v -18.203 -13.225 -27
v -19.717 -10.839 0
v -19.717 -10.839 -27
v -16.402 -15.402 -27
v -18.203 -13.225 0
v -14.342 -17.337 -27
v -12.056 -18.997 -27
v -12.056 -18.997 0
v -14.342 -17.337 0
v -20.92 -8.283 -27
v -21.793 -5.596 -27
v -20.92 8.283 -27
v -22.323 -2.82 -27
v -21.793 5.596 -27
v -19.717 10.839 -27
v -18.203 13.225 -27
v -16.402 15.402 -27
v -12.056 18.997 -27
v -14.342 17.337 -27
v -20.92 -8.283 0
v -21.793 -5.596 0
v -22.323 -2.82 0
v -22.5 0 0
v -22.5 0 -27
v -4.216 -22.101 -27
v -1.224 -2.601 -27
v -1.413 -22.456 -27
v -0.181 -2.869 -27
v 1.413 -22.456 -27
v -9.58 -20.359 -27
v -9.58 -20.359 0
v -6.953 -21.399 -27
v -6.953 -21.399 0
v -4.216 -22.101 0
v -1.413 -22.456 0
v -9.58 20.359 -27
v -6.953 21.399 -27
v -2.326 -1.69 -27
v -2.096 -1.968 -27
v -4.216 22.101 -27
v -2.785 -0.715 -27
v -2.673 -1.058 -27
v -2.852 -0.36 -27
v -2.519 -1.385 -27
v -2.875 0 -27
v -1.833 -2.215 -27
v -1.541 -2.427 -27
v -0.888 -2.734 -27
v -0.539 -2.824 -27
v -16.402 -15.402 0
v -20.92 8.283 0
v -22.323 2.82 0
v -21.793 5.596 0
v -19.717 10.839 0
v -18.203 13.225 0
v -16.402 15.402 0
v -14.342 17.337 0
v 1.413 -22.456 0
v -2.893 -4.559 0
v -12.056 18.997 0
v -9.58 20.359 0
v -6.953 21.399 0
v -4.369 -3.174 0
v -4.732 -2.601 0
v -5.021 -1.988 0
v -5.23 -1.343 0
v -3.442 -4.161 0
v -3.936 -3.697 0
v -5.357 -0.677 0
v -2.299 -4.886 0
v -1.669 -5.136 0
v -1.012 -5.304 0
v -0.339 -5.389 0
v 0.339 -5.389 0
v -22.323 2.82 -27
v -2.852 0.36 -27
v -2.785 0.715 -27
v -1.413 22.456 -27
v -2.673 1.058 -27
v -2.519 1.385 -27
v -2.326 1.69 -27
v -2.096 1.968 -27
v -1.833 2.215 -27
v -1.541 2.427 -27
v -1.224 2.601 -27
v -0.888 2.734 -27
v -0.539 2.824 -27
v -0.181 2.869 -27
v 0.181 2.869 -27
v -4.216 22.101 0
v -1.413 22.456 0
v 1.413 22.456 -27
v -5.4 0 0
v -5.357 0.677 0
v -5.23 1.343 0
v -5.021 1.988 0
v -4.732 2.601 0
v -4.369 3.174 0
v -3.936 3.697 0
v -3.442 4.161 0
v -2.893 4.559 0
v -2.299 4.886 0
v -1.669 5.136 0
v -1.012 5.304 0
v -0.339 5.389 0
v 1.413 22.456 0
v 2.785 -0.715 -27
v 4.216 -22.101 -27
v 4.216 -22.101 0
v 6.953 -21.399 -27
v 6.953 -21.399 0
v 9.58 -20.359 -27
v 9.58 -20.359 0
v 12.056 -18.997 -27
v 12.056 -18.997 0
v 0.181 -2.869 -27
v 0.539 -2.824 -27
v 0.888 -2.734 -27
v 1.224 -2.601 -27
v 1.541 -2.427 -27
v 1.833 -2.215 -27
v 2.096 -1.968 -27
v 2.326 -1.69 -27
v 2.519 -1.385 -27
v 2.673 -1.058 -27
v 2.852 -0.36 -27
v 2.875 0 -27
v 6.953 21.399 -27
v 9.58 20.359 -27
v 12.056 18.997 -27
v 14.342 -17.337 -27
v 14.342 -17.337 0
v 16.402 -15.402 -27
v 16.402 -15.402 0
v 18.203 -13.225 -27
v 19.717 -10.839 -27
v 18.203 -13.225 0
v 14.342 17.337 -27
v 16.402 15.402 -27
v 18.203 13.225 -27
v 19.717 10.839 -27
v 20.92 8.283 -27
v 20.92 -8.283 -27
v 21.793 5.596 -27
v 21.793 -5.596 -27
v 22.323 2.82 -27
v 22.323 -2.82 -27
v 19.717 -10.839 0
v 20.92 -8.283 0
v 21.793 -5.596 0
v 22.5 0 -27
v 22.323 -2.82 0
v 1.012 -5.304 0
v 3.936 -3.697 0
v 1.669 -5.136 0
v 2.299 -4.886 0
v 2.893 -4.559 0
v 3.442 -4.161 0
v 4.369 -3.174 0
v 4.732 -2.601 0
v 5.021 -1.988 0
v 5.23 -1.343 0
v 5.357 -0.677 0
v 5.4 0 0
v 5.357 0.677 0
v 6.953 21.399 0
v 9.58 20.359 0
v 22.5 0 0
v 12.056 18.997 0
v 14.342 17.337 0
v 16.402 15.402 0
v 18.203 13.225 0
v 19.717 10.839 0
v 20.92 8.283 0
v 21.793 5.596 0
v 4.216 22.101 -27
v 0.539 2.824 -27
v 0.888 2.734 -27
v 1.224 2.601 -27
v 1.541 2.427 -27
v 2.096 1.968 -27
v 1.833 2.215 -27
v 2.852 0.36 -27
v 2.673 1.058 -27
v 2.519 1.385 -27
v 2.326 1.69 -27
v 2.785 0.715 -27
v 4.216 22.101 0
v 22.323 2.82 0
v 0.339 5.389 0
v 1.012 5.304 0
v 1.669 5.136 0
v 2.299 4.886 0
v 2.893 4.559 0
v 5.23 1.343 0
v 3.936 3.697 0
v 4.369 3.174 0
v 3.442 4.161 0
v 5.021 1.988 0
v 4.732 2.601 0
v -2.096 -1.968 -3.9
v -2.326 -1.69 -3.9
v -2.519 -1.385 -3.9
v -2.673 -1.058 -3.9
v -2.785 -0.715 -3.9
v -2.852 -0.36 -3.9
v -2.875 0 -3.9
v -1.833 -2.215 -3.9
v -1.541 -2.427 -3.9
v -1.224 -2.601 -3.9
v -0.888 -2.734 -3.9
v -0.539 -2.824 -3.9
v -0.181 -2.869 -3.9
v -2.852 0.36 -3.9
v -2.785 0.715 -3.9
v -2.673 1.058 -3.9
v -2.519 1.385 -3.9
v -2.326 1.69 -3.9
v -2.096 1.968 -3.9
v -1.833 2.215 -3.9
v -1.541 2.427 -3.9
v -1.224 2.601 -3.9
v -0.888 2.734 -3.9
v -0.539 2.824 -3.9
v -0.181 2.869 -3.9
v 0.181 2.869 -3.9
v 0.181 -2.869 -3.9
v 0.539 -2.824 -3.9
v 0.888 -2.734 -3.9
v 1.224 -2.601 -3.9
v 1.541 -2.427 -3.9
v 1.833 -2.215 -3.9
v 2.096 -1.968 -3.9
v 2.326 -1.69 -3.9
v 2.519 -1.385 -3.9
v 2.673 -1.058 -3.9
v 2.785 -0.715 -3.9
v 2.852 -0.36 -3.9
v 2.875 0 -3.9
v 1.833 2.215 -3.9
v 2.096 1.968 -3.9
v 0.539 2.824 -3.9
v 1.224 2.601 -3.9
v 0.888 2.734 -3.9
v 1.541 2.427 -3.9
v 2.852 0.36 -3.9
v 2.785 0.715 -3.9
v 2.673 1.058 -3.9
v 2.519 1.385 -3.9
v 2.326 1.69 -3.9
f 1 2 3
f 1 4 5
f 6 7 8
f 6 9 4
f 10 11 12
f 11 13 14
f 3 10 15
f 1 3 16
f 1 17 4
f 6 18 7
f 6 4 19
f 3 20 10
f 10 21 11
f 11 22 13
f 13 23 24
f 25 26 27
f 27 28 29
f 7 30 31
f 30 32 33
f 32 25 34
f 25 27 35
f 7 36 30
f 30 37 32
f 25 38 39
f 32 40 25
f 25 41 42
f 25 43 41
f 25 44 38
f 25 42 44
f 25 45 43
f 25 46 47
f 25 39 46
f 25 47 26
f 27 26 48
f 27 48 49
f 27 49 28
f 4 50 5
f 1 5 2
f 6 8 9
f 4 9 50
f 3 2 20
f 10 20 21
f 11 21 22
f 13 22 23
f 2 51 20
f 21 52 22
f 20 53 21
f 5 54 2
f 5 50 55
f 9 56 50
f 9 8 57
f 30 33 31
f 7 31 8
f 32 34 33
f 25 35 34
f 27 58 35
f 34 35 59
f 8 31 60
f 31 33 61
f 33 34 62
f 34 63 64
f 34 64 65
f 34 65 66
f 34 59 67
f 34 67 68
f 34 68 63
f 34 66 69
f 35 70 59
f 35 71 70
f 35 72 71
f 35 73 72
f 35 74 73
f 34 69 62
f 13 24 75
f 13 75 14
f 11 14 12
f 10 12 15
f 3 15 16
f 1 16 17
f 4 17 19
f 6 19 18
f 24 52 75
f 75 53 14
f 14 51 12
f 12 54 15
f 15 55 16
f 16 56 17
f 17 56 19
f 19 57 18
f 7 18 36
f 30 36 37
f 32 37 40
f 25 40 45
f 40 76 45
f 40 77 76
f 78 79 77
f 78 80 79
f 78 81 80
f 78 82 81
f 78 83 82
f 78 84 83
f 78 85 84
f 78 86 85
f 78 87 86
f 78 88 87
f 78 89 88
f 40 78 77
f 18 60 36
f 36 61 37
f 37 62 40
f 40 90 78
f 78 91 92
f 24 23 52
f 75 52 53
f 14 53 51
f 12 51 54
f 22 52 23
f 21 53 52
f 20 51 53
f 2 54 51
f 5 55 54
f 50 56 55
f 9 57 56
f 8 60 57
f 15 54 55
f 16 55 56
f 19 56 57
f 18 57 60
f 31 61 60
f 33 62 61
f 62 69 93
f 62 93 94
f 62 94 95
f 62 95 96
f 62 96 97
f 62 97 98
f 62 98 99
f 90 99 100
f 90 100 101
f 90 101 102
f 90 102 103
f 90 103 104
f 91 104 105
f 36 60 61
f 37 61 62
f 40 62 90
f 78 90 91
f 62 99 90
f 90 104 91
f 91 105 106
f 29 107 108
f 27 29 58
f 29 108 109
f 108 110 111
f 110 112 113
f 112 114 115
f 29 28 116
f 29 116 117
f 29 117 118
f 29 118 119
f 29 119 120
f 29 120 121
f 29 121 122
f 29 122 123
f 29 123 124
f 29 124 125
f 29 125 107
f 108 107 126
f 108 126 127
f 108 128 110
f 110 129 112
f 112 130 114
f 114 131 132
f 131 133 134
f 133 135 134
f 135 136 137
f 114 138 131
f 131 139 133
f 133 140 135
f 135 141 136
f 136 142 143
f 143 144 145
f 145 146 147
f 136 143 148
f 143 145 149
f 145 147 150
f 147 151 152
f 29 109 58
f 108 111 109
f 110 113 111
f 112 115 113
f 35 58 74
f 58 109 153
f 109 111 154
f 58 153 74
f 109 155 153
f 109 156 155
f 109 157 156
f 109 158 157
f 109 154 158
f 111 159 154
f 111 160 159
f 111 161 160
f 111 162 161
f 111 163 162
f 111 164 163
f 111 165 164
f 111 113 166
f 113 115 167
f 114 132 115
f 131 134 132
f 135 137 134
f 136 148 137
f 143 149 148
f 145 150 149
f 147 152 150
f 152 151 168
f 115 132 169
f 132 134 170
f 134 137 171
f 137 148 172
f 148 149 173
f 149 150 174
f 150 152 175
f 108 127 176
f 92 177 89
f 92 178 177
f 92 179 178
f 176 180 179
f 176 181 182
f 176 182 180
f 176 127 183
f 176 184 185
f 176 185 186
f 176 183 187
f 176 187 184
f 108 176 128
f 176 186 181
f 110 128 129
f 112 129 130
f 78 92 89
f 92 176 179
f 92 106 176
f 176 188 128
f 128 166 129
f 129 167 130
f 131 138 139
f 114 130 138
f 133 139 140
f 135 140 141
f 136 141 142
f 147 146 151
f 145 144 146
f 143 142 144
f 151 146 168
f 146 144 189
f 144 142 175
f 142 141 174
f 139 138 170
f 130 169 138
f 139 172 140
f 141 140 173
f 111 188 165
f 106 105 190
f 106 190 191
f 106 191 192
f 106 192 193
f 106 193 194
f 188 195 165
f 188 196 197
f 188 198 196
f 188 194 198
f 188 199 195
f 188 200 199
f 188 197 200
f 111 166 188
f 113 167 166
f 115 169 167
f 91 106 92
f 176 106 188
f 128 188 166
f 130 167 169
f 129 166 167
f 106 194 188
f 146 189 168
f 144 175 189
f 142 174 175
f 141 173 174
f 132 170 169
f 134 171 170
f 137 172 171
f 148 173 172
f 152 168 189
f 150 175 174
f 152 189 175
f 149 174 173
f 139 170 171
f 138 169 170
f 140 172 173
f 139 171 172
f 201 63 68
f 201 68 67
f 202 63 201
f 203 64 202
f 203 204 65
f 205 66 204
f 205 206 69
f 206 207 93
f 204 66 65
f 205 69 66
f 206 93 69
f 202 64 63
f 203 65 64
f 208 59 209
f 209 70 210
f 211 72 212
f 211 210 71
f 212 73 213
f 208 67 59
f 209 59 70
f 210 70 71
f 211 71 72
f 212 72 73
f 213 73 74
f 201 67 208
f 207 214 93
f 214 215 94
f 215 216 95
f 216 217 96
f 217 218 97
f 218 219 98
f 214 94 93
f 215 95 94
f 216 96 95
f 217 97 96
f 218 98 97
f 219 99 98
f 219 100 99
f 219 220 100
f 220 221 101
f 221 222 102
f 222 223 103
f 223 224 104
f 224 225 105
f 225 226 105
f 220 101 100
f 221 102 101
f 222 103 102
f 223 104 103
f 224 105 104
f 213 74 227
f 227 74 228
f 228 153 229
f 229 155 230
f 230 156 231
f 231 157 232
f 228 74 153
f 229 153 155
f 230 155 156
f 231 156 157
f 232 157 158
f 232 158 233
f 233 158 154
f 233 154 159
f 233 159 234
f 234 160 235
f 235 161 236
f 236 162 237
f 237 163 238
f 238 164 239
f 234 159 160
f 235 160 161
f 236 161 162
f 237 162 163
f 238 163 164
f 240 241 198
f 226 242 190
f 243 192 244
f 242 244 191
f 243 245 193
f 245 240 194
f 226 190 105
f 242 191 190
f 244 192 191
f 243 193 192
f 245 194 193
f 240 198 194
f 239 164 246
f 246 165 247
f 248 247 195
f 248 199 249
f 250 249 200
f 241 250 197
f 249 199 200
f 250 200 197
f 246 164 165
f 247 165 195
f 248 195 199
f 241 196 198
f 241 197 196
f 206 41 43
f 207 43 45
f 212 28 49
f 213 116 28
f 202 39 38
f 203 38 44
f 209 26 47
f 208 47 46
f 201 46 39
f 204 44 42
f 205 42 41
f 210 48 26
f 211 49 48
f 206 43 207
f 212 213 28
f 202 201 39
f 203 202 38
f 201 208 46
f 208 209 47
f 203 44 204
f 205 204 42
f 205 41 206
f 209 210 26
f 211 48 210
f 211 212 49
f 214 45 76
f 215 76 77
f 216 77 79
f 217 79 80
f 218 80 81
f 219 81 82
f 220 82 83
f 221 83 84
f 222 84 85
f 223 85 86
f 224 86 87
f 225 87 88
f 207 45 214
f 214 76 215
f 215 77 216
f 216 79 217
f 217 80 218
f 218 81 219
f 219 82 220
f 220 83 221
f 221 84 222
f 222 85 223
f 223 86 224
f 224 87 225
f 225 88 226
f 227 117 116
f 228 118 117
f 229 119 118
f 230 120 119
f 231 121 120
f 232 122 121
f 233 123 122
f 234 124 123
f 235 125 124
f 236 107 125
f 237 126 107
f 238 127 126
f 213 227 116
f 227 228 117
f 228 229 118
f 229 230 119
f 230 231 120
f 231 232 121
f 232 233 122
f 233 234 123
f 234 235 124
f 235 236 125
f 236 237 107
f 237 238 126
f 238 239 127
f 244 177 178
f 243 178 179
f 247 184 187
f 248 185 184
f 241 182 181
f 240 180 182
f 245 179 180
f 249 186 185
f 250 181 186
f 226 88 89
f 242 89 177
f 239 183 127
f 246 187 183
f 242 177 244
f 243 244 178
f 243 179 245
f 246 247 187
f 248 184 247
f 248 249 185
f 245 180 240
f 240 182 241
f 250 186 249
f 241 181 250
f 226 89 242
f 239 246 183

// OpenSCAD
$fn = 50;

difference() {
	union() {
		translate(v = [0, 0, -27.0]) {
			cylinder(h = 27, r = 22.5);
		}
		#translate(v = [0, 0, -30.0]) {
			cylinder(h = 30, r = 2.875);
		}
	}
	union() {
		translate(v = [0, 0, 0]) {
			rotate(a = [0, 0, 0]) {
				difference() {
					union() {
						translate(v = [0, 0, -30.0]) {
							cylinder(h = 30, r = 2.6);
						}
						translate(v = [0, 0, -3.9]) {
							cylinder(h = 3.9, r1 = 2.875, r2 = 5.4);
						}
						translate(v = [0, 0, -30.0]) {
							cylinder(h = 30, r = 2.875);
						}
						translate(v = [0, 0, -30.0]) {
							cylinder(h = 30, r = 2.6);
						}
					}
					union();
				}
			}
		}
	}
}
